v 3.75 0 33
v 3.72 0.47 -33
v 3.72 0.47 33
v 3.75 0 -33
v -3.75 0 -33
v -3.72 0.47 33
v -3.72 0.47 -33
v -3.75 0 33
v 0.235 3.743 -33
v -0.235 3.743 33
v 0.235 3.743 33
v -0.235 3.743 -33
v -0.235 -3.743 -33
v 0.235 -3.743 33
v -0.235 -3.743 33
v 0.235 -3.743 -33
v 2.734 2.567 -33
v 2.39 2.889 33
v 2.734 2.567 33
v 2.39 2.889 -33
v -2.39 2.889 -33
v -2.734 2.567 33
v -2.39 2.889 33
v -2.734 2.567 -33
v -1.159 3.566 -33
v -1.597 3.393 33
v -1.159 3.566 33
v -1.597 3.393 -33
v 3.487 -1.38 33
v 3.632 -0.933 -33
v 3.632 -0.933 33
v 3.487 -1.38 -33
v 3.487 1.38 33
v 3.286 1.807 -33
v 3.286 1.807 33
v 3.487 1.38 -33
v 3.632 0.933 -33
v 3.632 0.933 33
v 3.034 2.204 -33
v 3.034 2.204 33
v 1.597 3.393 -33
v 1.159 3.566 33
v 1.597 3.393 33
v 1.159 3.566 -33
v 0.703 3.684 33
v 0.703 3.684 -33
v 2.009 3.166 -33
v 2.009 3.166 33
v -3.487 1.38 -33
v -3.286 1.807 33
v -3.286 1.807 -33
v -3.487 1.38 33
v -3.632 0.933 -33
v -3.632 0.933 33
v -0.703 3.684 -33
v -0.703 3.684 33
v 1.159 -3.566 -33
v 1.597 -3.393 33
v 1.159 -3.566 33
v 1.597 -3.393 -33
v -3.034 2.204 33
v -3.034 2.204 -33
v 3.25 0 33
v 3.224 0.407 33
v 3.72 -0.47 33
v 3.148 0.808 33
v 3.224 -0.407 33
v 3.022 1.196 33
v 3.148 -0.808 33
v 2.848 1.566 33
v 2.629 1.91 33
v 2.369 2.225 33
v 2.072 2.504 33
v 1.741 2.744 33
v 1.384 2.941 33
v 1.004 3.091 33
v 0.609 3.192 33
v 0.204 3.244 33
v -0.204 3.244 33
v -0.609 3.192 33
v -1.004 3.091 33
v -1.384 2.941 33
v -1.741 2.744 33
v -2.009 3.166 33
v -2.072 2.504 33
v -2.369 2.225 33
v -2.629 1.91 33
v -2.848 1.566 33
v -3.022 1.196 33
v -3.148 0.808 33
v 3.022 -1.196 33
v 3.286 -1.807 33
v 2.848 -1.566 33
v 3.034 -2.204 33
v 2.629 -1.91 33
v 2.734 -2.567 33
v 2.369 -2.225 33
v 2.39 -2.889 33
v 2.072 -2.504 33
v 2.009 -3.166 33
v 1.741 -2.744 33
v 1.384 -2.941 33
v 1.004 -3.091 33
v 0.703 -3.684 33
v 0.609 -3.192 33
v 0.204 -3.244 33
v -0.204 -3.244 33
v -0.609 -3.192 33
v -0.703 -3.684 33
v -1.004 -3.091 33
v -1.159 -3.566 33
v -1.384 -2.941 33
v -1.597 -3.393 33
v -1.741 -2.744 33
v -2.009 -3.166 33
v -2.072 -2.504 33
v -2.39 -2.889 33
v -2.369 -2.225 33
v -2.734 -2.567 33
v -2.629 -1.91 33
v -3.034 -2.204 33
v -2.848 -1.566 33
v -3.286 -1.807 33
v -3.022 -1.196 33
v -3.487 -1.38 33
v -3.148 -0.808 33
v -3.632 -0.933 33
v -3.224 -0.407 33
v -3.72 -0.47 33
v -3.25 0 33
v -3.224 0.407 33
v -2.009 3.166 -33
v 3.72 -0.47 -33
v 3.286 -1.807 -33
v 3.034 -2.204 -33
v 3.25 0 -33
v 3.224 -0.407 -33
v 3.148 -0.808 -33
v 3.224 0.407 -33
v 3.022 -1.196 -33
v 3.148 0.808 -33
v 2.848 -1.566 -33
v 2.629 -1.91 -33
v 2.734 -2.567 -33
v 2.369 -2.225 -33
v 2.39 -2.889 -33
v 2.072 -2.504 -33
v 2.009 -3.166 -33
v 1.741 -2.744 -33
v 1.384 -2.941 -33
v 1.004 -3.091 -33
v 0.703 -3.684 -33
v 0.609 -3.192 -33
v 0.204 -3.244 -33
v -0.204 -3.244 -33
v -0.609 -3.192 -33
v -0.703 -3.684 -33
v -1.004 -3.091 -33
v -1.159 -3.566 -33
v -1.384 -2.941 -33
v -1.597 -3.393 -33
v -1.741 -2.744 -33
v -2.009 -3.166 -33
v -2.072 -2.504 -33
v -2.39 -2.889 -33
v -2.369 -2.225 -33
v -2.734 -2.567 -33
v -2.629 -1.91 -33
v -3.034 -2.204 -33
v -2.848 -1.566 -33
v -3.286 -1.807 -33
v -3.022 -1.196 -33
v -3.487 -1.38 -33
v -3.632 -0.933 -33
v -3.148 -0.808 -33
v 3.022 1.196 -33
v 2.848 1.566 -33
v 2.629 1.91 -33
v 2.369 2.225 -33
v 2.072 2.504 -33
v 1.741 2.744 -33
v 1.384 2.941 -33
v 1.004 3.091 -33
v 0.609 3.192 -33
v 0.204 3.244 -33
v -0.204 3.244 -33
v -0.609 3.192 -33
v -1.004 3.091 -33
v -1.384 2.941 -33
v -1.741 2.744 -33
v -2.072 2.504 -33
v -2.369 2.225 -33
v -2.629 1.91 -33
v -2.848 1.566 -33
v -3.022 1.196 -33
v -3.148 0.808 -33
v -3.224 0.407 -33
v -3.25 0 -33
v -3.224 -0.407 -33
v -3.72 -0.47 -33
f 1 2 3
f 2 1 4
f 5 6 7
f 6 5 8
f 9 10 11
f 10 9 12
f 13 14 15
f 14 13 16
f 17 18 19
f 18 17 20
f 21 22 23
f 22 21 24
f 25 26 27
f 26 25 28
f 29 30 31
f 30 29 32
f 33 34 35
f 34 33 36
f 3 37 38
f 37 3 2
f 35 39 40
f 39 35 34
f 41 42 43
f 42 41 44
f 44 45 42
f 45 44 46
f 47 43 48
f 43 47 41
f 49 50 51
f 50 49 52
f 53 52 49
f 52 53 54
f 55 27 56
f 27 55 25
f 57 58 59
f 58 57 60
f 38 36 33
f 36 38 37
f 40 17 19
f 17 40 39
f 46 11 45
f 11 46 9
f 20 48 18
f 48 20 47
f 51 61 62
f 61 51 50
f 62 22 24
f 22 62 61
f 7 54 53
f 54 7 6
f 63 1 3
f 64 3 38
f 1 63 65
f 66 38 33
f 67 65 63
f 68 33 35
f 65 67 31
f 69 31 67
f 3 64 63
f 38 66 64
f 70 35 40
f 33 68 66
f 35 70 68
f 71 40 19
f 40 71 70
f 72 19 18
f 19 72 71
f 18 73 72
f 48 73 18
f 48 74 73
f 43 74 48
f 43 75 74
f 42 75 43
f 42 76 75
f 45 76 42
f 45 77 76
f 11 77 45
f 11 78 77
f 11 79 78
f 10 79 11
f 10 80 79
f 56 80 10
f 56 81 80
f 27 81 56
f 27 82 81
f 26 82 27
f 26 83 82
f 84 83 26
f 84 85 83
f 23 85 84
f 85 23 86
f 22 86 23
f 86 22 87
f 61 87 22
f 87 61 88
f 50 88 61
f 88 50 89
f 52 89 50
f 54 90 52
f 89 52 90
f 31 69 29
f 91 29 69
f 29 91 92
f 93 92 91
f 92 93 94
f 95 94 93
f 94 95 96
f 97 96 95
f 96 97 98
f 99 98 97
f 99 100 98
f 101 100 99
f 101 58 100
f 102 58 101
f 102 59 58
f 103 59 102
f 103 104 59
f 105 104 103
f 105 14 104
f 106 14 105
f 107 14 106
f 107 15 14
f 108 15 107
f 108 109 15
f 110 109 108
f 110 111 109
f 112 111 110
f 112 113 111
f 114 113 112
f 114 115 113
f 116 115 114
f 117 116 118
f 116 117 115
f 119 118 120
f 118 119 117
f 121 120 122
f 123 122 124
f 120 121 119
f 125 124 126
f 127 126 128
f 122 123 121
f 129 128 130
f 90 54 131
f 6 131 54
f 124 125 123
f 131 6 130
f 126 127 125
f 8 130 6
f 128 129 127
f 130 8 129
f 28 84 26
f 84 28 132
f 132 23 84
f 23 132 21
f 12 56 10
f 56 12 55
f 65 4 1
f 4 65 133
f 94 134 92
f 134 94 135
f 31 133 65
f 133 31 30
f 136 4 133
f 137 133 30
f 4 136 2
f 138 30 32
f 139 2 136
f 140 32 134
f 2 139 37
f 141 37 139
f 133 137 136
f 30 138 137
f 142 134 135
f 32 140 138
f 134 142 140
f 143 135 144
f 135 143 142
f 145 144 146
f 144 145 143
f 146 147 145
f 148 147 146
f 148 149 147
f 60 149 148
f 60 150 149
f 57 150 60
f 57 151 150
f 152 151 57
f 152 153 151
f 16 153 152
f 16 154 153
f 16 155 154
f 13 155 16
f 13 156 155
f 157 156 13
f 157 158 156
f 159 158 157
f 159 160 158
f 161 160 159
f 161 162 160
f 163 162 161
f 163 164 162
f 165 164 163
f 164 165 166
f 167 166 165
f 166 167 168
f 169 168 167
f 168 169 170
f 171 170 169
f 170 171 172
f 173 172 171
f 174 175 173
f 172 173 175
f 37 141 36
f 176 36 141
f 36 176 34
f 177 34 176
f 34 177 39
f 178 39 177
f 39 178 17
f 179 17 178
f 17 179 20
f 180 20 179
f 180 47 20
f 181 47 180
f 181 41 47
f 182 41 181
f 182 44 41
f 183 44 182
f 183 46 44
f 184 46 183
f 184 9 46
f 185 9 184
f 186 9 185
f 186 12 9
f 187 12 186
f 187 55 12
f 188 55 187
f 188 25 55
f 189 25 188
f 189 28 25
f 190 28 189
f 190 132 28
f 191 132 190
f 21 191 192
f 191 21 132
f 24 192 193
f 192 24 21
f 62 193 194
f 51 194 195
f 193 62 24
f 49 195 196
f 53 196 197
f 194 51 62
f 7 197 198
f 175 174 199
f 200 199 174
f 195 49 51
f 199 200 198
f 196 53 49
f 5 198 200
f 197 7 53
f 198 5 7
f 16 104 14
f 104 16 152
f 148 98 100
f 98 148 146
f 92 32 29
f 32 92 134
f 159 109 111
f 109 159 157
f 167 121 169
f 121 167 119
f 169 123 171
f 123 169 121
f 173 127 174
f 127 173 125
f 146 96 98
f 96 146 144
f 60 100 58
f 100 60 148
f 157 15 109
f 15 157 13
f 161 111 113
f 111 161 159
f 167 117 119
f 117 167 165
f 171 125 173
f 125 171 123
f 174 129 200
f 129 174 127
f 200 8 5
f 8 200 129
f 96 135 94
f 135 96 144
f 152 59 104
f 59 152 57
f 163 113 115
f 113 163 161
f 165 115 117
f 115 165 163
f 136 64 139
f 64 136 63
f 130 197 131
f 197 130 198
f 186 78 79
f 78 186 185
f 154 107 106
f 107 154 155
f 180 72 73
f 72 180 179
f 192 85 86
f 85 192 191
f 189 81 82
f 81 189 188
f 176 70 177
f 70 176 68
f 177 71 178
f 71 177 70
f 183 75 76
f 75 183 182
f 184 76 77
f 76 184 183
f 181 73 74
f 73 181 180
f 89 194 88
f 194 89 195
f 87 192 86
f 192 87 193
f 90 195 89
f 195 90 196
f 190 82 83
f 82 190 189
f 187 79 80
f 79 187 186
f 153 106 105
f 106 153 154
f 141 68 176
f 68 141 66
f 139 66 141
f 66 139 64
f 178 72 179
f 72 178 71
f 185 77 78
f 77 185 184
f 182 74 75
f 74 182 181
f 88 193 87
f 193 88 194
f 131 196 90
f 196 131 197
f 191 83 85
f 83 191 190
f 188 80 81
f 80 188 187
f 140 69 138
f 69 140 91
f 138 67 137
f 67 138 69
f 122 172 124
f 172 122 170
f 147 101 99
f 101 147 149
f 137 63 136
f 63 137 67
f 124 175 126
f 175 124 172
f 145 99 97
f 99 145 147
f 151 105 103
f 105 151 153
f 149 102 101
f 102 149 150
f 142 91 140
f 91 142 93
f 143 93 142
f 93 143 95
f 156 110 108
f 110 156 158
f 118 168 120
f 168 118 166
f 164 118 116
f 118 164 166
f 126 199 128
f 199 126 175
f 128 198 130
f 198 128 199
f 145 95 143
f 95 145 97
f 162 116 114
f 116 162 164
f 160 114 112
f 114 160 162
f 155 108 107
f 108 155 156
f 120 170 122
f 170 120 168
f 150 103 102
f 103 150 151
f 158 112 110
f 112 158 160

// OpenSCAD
$fn = 50;


difference() {
	union() {
		translate(v = [0, 0, -33.0000000000]) {
			cylinder(h = 66, r = 3.7500000000);
		}
	}
	union() {
		translate(v = [0, 0, -100.0000000000]) {
			cylinder(h = 200, r = 3.2500000000);
		}
	}
}
